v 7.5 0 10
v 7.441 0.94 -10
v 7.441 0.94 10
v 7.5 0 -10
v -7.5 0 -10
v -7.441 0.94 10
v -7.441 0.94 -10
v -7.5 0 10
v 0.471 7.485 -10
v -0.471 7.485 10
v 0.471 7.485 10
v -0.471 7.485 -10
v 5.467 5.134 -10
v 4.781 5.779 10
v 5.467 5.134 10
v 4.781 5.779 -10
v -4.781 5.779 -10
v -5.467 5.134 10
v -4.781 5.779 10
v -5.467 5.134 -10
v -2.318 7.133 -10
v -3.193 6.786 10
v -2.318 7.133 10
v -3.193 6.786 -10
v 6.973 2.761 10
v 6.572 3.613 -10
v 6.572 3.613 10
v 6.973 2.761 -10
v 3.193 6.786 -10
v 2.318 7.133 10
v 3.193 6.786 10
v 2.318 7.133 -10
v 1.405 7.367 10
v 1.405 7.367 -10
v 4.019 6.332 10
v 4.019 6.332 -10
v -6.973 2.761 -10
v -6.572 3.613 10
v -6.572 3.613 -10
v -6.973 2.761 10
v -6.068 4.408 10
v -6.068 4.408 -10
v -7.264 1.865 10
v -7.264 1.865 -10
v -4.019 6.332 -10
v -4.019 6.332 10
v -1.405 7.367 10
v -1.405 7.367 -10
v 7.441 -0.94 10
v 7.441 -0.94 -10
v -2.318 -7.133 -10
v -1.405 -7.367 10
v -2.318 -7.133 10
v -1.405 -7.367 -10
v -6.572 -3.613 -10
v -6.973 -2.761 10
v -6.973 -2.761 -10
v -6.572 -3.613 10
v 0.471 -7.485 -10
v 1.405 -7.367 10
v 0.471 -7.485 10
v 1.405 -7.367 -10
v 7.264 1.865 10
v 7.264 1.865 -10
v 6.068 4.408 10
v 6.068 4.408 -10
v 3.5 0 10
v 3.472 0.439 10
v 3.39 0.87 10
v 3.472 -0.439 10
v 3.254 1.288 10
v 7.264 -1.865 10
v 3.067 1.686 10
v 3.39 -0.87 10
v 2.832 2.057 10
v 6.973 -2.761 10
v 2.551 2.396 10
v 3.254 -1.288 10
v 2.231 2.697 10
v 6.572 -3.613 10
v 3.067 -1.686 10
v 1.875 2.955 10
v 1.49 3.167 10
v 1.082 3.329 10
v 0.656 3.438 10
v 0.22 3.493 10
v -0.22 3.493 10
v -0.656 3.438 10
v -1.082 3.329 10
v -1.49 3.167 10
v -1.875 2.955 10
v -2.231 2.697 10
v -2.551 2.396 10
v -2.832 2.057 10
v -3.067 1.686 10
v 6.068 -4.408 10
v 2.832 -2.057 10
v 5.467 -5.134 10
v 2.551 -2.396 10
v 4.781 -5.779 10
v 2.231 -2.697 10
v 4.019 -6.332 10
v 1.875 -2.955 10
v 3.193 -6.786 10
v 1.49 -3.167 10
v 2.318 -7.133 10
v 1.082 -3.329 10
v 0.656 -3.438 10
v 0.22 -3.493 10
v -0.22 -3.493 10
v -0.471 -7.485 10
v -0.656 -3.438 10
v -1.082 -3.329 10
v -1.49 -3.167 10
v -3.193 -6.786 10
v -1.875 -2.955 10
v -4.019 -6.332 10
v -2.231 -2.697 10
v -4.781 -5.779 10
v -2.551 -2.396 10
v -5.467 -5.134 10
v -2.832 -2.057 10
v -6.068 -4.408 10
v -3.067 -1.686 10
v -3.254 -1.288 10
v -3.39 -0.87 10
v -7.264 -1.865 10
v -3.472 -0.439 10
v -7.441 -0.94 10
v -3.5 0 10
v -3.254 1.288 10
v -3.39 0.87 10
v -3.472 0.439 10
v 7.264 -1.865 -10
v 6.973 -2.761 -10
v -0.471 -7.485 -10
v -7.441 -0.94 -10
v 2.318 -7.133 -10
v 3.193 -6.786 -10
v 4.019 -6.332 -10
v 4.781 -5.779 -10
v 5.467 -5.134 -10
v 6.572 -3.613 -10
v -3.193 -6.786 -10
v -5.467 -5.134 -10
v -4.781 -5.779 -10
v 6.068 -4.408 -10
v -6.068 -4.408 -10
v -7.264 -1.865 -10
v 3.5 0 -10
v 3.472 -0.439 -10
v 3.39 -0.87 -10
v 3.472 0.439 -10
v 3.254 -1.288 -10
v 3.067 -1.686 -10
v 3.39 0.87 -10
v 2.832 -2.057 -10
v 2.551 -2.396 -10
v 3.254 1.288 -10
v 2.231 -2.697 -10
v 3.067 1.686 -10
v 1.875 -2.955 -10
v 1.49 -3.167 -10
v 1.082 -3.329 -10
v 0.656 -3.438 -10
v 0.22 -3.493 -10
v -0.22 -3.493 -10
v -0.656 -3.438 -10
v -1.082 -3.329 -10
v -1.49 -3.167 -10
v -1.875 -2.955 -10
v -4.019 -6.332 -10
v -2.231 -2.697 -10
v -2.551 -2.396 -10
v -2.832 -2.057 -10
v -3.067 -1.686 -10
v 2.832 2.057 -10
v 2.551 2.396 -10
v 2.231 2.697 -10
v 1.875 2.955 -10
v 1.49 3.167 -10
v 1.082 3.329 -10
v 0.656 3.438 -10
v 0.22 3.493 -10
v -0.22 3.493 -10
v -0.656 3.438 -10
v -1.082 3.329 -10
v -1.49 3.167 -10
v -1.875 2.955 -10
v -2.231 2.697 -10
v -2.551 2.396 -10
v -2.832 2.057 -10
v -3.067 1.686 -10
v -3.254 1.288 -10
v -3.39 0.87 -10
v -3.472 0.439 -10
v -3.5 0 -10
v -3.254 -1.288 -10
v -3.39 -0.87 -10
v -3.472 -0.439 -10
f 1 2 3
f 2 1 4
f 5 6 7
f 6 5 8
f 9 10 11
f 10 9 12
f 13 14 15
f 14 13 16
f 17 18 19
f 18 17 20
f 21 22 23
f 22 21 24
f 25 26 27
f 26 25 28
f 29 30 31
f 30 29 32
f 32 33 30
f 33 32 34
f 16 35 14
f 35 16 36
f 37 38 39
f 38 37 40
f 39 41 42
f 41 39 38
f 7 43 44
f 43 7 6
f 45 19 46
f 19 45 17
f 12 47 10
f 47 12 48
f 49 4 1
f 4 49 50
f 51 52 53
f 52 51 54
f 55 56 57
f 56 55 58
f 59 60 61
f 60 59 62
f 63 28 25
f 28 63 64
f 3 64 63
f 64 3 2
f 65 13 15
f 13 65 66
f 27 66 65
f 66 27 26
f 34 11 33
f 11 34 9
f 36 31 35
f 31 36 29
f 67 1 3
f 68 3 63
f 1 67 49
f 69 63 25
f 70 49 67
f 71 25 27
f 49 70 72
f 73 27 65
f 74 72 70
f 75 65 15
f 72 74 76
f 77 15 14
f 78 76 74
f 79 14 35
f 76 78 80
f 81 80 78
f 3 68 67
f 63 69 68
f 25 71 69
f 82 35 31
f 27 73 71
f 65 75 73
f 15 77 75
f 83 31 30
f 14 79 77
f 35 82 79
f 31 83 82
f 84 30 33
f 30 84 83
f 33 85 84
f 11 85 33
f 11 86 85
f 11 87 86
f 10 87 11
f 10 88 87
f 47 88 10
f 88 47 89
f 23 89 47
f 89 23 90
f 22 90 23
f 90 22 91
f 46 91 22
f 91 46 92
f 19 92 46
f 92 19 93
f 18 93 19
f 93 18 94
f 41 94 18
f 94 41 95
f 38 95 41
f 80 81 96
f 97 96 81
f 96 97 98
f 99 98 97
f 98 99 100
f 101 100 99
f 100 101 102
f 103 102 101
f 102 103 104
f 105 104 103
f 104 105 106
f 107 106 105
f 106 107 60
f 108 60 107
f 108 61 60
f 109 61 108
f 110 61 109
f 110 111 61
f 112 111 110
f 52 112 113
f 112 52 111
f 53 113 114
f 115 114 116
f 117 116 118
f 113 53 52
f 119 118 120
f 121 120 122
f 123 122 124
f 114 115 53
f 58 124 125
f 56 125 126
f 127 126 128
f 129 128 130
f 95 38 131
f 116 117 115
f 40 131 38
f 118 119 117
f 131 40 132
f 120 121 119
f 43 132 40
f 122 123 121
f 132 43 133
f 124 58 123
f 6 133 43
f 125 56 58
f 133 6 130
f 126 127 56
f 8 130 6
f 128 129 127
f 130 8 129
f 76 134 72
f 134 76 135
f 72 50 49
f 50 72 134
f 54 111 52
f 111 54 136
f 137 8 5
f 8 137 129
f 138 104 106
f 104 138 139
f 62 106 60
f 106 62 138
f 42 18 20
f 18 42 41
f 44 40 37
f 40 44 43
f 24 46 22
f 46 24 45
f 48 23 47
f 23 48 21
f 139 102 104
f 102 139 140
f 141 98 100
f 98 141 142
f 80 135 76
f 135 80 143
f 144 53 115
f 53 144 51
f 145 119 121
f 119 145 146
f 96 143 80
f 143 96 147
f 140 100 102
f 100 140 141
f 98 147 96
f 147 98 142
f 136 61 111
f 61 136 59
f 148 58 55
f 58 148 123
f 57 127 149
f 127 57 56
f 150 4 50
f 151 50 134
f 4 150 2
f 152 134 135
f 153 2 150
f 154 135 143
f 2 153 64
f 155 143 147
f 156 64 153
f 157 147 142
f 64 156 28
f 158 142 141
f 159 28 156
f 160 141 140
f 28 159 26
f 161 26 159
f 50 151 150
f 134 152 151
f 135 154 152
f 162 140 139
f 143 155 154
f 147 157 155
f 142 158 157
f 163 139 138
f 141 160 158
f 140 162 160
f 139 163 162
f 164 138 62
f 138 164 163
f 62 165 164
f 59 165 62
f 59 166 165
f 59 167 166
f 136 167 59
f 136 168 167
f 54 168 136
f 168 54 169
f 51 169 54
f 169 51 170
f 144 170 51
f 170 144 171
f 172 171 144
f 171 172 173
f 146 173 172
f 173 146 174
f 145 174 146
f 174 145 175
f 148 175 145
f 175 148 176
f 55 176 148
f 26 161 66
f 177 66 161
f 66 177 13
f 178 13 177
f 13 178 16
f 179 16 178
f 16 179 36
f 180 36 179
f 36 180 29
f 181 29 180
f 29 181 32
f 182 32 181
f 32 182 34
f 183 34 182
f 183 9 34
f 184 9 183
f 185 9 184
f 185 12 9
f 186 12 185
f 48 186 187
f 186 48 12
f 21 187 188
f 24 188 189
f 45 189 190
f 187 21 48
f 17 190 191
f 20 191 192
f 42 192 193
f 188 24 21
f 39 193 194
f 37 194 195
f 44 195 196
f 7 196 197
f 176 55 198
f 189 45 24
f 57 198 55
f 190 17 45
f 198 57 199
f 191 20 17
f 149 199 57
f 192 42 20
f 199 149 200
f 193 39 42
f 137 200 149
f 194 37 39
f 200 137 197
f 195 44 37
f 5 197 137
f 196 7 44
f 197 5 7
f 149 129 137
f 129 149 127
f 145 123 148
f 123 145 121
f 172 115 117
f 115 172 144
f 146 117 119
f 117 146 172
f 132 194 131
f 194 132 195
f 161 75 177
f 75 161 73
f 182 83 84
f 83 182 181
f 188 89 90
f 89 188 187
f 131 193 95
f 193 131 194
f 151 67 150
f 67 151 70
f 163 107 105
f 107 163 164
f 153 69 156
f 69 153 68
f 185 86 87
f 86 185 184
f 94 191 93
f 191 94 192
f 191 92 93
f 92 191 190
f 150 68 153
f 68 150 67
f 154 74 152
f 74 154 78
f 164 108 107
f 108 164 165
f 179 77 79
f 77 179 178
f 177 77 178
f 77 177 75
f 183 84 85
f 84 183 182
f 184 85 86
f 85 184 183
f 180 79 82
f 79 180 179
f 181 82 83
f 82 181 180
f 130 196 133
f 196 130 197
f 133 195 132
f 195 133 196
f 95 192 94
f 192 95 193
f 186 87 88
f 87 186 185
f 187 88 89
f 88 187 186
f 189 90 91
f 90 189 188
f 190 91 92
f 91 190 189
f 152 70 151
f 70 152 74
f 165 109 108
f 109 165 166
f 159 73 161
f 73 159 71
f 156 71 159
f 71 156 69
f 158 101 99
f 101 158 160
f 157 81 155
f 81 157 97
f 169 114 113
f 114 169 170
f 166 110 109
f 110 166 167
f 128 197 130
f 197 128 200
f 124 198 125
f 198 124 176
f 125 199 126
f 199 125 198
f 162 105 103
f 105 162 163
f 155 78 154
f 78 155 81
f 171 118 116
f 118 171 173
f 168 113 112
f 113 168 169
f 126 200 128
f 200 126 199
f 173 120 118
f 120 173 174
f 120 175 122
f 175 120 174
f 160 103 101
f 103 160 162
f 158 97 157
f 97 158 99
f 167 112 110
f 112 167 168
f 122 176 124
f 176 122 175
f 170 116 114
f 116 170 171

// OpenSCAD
$fn = 50;


difference() {
	union() {
		translate(v = [0, 0, -10.0000000000]) {
			cylinder(h = 20, r = 7.5000000000);
		}
	}
	union() {
		translate(v = [0, 0, -100.0000000000]) {
			cylinder(h = 200, r = 3.5000000000);
		}
	}
}
